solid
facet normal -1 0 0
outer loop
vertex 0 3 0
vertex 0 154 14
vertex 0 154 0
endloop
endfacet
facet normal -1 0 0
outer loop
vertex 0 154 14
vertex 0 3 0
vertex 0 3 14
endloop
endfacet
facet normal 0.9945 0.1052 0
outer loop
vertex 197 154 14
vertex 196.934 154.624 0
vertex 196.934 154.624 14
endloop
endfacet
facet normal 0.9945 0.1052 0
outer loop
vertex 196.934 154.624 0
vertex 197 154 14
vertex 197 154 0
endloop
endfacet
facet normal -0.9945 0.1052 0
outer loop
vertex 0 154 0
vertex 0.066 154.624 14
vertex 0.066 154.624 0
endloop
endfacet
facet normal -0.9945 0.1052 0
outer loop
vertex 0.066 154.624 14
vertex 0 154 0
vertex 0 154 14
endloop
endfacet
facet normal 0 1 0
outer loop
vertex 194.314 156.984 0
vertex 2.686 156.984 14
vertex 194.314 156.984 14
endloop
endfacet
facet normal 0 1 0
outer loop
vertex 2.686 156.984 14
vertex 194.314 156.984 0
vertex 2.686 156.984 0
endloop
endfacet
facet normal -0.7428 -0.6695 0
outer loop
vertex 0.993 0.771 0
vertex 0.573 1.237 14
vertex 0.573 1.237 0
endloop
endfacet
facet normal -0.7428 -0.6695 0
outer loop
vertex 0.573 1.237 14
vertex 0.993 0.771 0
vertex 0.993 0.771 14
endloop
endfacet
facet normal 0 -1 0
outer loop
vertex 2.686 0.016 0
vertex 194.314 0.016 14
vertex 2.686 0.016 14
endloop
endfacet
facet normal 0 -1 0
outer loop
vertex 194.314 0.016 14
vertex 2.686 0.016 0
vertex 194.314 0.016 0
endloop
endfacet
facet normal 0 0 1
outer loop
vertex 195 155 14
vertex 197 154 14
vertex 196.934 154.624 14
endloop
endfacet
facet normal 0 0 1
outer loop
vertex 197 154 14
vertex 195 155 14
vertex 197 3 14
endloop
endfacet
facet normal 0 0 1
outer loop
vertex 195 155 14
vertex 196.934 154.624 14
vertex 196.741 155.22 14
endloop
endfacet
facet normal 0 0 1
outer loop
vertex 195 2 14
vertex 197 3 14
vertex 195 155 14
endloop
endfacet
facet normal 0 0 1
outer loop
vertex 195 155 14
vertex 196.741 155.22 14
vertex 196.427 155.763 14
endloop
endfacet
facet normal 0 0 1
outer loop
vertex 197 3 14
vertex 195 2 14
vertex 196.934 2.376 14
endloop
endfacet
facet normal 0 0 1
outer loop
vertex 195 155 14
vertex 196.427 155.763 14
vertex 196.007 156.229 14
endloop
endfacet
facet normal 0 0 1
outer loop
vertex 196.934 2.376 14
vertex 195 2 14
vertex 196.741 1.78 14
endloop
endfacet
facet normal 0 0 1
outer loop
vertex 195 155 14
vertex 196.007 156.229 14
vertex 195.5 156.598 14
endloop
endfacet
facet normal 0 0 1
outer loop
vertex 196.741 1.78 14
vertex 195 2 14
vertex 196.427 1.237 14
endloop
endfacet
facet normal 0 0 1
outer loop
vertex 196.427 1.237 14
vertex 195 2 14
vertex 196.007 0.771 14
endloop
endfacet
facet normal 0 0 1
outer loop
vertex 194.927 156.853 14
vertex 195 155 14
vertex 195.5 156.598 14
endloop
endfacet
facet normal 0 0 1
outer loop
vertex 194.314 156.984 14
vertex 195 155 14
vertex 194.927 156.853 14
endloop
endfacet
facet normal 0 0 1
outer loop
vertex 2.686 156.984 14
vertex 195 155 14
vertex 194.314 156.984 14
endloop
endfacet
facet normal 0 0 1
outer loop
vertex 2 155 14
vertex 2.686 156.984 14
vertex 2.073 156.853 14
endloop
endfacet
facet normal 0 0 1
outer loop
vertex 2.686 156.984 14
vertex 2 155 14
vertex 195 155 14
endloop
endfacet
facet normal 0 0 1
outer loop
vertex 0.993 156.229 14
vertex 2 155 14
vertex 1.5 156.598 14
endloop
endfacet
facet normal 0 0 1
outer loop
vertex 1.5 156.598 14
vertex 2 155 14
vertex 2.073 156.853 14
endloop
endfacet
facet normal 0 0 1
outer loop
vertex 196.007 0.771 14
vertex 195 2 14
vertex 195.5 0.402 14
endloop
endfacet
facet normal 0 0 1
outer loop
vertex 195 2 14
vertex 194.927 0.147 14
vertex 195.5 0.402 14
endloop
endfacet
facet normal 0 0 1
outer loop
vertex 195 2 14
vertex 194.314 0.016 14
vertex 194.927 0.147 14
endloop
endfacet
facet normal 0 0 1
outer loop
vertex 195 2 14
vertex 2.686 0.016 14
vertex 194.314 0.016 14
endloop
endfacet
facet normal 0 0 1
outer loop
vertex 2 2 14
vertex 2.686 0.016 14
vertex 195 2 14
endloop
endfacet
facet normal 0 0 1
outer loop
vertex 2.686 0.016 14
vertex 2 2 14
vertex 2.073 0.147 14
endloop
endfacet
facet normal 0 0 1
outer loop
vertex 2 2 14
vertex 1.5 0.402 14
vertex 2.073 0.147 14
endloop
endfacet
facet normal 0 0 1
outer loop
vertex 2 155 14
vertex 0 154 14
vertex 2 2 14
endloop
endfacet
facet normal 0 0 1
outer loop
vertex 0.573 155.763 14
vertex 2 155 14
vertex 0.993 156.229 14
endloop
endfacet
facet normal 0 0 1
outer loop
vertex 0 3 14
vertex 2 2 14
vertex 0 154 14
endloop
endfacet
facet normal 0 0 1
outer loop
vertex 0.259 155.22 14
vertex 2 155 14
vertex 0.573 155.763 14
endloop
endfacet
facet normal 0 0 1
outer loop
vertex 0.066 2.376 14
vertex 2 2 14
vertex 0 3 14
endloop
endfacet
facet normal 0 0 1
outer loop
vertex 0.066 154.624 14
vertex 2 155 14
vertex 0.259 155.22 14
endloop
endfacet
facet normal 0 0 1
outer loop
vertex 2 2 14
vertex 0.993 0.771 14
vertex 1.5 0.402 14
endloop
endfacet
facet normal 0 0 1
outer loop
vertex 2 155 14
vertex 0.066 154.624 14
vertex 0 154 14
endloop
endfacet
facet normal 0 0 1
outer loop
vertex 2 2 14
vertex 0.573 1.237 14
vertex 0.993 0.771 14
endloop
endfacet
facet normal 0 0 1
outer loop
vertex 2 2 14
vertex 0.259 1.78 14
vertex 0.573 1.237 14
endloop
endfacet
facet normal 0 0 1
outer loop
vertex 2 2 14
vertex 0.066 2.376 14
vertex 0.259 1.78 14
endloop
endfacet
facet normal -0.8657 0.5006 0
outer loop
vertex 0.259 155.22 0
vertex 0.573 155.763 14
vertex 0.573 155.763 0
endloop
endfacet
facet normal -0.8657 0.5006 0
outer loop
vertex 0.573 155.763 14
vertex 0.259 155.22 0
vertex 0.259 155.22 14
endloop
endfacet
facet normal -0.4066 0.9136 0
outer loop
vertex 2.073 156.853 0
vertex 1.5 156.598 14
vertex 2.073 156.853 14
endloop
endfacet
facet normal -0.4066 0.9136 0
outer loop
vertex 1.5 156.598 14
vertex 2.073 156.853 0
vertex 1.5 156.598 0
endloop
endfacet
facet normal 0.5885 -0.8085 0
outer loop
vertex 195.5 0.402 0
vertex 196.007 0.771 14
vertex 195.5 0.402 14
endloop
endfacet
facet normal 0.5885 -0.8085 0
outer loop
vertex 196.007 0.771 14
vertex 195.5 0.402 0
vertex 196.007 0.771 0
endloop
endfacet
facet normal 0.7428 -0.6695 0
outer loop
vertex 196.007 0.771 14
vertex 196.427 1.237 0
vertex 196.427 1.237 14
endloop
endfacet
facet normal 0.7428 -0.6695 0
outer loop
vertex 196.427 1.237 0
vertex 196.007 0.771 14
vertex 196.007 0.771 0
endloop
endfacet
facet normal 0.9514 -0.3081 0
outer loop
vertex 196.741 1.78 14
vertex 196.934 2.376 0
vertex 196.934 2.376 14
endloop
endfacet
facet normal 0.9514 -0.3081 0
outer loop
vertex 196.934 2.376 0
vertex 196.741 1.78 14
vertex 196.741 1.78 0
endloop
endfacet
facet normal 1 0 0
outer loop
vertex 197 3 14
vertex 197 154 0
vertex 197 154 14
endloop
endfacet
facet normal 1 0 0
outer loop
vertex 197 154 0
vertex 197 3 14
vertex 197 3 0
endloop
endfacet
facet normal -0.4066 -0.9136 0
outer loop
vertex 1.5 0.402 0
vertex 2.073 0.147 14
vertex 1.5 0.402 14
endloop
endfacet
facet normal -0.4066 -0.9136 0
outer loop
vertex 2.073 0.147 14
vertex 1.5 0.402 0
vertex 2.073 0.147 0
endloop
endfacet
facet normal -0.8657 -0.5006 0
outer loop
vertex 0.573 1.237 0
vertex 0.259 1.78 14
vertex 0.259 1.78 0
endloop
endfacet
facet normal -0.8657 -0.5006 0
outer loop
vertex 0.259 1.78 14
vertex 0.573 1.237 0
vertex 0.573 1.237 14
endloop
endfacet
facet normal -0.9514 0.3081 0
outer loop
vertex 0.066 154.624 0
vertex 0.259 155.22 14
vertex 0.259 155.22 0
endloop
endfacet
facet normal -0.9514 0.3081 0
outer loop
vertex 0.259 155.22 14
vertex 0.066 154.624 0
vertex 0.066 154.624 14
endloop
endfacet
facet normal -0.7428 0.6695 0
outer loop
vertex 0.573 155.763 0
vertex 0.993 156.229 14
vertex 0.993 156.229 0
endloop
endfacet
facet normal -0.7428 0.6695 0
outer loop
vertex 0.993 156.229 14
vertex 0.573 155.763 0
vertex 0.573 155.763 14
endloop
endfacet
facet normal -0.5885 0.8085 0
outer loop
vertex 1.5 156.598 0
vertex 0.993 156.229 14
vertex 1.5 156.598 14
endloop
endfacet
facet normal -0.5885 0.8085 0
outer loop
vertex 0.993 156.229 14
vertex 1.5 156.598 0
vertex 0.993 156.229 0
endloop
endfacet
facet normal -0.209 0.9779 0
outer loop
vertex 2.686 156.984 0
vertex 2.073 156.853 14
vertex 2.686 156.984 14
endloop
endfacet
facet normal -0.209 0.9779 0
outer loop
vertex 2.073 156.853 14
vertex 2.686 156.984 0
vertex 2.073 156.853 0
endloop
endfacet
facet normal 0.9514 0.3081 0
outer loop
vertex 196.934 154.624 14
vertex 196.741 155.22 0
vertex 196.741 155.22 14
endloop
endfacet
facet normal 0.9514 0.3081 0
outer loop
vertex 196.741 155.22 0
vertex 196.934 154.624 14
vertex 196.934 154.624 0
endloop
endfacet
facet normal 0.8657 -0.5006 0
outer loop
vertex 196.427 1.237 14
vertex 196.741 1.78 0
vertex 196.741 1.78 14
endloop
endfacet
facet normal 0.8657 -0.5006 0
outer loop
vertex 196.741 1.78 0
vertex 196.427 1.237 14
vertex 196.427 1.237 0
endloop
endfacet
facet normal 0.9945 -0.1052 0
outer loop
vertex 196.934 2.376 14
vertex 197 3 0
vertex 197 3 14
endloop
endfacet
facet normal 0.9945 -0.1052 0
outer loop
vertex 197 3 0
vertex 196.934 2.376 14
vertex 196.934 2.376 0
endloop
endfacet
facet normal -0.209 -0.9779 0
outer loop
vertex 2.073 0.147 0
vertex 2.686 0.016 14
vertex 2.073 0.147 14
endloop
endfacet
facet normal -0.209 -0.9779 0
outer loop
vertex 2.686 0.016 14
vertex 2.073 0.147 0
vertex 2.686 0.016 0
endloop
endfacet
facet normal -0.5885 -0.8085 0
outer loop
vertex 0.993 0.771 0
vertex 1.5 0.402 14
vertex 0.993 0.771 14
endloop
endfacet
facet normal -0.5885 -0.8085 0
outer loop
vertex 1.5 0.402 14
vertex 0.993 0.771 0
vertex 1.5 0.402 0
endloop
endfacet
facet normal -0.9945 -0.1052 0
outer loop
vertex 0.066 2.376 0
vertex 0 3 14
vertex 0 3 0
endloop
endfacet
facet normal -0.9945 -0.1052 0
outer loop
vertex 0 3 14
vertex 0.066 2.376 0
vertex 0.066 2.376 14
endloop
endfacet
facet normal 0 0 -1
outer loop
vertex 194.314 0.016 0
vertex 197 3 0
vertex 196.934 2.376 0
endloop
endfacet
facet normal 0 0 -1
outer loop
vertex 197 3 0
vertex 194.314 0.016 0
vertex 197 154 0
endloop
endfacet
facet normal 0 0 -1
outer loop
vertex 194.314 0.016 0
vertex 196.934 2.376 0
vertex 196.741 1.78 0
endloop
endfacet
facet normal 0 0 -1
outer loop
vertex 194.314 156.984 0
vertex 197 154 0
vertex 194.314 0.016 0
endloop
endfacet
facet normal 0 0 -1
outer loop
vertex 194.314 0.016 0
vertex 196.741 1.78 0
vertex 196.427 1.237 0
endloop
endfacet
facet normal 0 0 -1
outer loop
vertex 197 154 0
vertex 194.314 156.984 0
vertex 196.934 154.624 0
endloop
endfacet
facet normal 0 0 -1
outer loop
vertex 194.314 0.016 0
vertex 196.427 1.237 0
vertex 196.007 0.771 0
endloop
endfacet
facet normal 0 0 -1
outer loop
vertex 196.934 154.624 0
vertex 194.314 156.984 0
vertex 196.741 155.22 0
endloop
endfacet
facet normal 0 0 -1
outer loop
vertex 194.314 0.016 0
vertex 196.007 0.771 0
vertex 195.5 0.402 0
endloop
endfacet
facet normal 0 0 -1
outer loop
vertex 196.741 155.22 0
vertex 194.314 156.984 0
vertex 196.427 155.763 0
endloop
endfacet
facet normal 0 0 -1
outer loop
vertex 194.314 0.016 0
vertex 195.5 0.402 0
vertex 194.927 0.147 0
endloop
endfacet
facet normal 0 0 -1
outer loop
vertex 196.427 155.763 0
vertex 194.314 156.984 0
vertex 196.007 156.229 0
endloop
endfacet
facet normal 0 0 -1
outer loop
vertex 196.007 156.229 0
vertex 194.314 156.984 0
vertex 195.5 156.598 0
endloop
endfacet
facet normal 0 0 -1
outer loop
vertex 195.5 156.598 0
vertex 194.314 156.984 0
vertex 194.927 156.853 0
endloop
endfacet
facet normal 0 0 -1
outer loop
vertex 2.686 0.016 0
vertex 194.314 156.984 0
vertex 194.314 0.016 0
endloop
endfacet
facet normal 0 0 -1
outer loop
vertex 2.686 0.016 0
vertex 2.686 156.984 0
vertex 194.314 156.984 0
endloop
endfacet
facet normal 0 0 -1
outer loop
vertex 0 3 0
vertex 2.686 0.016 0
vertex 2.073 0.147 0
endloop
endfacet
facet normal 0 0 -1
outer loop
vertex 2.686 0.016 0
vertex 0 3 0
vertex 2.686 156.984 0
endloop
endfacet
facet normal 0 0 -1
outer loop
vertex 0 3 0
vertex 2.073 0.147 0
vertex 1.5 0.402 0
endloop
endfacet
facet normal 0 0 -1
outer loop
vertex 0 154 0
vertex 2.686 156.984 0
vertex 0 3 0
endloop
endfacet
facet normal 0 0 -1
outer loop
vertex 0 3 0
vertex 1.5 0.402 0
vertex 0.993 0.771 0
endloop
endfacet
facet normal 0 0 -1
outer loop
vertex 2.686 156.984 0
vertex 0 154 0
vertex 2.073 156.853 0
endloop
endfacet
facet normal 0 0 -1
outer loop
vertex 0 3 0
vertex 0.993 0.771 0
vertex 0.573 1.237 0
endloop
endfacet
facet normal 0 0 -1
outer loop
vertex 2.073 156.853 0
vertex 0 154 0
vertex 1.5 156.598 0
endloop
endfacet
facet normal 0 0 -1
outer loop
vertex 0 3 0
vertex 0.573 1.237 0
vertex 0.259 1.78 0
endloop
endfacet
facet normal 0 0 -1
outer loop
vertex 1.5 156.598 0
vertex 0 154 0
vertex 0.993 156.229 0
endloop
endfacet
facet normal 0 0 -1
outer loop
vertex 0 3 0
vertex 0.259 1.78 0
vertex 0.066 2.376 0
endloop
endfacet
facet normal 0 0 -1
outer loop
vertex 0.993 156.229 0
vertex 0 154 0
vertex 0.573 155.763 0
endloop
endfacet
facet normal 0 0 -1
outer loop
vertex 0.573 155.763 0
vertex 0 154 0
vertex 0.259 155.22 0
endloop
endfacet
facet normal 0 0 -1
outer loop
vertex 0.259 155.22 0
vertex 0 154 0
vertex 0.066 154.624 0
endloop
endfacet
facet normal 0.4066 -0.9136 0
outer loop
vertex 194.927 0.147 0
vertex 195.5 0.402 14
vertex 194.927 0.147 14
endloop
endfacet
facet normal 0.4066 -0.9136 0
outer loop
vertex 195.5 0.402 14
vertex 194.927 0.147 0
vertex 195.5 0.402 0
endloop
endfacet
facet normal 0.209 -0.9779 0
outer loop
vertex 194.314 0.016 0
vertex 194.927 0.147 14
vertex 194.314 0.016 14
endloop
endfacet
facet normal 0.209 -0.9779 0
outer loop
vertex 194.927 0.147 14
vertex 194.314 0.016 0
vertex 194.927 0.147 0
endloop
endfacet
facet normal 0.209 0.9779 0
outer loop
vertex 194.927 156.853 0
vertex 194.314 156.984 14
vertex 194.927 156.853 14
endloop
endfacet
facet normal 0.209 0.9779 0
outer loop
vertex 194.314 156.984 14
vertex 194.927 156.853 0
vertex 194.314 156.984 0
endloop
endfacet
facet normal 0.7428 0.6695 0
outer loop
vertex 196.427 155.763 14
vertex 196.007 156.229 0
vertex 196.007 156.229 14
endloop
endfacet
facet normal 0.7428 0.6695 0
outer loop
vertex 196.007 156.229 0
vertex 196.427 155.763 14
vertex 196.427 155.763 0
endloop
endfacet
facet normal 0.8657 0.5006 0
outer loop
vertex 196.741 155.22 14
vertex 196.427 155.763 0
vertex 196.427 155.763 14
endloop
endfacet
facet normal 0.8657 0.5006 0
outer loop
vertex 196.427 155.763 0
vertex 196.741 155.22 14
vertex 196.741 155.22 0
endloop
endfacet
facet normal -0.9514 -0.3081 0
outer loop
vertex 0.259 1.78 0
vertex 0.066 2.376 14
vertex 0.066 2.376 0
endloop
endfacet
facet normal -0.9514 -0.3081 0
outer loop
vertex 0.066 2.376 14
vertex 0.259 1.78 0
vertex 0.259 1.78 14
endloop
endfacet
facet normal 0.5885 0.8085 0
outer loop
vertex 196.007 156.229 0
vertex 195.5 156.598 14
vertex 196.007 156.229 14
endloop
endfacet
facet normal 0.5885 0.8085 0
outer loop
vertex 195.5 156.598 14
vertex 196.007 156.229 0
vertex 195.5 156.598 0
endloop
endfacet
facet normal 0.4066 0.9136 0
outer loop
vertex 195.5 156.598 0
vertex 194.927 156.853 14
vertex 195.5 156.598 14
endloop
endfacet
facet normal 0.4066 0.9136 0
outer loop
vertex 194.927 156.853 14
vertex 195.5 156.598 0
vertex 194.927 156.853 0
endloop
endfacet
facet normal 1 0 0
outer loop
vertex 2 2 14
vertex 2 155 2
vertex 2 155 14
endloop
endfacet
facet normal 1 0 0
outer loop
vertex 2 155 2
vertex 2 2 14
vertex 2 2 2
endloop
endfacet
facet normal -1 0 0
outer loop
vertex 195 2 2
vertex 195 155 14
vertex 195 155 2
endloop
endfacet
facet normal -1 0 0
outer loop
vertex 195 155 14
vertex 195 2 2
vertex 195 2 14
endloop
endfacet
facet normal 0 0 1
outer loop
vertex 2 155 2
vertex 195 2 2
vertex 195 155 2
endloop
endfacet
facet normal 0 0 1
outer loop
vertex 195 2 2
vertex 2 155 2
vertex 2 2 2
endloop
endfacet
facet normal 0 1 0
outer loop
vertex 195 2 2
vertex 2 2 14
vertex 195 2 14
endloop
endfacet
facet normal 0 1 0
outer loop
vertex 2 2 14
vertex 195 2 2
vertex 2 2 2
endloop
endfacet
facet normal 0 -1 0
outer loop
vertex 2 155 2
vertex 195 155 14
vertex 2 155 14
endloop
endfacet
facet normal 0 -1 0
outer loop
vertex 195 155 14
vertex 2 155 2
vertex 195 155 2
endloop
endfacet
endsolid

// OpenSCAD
// RK3568 Cap-Style Removable Lid
// Fits on top of rk3568_base (192x152mm outer, R3 corners)

// ======================== Parameters ========================

// Base dimensions (from rk3568_base.scad)
base_outer_x = 192;
base_outer_y = 152;
base_corner_r = 3;

// Lid parameters
lip_height   = 12;    // how far the lip drops down
lip_wall     = 2;     // lip wall thickness
plate_thick  = 2;     // top plate thickness
clearance    = 0.5;   // gap between lid inner and base outer per side
corner_r     = 3;     // corner fillet radius (match base)

// Derived
inner_x = base_outer_x + clearance * 2;
inner_y = base_outer_y + clearance * 2;
outer_x = inner_x + lip_wall * 2;
outer_y = inner_y + lip_wall * 2;
total_h = plate_thick + lip_height;

// ======================== Modules ========================

module rounded_rect(sx, sy, sz, r) {
    hull() {
        translate([r, r, 0])
            cylinder(h = sz, r = r, $fn = 30);
        translate([sx - r, r, 0])
            cylinder(h = sz, r = r, $fn = 30);
        translate([r, sy - r, 0])
            cylinder(h = sz, r = r, $fn = 30);
        translate([sx - r, sy - r, 0])
            cylinder(h = sz, r = r, $fn = 30);
    }
}

// ======================== Assembly ========================

// Outer shell (full size)
difference() {
    // Solid outer block
    rounded_rect(outer_x, outer_y, total_h, corner_r);

    // Inner cavity (where base walls sit)
    translate([lip_wall, lip_wall, plate_thick])
        cube([inner_x, inner_y, lip_height + 1]);

    // Optional: center cutout on top plate to save material
    // Uncomment below for a lighter lid with a recessed window
    // translate([lip_wall + 5, lip_wall + 5, -0.5])
    //     rounded_rect(inner_x - 10, inner_y - 10, plate_thick + 1, 3);
}

// ======================== Dimensions ========================
// Outer: ~197 x 157 x 14 mm
// Inner cavity: 193 x 153 mm (0.5mm clearance per side from base)
// Lip height: 12mm (covers top strip + part of window)
// Top plate: 2mm thick
